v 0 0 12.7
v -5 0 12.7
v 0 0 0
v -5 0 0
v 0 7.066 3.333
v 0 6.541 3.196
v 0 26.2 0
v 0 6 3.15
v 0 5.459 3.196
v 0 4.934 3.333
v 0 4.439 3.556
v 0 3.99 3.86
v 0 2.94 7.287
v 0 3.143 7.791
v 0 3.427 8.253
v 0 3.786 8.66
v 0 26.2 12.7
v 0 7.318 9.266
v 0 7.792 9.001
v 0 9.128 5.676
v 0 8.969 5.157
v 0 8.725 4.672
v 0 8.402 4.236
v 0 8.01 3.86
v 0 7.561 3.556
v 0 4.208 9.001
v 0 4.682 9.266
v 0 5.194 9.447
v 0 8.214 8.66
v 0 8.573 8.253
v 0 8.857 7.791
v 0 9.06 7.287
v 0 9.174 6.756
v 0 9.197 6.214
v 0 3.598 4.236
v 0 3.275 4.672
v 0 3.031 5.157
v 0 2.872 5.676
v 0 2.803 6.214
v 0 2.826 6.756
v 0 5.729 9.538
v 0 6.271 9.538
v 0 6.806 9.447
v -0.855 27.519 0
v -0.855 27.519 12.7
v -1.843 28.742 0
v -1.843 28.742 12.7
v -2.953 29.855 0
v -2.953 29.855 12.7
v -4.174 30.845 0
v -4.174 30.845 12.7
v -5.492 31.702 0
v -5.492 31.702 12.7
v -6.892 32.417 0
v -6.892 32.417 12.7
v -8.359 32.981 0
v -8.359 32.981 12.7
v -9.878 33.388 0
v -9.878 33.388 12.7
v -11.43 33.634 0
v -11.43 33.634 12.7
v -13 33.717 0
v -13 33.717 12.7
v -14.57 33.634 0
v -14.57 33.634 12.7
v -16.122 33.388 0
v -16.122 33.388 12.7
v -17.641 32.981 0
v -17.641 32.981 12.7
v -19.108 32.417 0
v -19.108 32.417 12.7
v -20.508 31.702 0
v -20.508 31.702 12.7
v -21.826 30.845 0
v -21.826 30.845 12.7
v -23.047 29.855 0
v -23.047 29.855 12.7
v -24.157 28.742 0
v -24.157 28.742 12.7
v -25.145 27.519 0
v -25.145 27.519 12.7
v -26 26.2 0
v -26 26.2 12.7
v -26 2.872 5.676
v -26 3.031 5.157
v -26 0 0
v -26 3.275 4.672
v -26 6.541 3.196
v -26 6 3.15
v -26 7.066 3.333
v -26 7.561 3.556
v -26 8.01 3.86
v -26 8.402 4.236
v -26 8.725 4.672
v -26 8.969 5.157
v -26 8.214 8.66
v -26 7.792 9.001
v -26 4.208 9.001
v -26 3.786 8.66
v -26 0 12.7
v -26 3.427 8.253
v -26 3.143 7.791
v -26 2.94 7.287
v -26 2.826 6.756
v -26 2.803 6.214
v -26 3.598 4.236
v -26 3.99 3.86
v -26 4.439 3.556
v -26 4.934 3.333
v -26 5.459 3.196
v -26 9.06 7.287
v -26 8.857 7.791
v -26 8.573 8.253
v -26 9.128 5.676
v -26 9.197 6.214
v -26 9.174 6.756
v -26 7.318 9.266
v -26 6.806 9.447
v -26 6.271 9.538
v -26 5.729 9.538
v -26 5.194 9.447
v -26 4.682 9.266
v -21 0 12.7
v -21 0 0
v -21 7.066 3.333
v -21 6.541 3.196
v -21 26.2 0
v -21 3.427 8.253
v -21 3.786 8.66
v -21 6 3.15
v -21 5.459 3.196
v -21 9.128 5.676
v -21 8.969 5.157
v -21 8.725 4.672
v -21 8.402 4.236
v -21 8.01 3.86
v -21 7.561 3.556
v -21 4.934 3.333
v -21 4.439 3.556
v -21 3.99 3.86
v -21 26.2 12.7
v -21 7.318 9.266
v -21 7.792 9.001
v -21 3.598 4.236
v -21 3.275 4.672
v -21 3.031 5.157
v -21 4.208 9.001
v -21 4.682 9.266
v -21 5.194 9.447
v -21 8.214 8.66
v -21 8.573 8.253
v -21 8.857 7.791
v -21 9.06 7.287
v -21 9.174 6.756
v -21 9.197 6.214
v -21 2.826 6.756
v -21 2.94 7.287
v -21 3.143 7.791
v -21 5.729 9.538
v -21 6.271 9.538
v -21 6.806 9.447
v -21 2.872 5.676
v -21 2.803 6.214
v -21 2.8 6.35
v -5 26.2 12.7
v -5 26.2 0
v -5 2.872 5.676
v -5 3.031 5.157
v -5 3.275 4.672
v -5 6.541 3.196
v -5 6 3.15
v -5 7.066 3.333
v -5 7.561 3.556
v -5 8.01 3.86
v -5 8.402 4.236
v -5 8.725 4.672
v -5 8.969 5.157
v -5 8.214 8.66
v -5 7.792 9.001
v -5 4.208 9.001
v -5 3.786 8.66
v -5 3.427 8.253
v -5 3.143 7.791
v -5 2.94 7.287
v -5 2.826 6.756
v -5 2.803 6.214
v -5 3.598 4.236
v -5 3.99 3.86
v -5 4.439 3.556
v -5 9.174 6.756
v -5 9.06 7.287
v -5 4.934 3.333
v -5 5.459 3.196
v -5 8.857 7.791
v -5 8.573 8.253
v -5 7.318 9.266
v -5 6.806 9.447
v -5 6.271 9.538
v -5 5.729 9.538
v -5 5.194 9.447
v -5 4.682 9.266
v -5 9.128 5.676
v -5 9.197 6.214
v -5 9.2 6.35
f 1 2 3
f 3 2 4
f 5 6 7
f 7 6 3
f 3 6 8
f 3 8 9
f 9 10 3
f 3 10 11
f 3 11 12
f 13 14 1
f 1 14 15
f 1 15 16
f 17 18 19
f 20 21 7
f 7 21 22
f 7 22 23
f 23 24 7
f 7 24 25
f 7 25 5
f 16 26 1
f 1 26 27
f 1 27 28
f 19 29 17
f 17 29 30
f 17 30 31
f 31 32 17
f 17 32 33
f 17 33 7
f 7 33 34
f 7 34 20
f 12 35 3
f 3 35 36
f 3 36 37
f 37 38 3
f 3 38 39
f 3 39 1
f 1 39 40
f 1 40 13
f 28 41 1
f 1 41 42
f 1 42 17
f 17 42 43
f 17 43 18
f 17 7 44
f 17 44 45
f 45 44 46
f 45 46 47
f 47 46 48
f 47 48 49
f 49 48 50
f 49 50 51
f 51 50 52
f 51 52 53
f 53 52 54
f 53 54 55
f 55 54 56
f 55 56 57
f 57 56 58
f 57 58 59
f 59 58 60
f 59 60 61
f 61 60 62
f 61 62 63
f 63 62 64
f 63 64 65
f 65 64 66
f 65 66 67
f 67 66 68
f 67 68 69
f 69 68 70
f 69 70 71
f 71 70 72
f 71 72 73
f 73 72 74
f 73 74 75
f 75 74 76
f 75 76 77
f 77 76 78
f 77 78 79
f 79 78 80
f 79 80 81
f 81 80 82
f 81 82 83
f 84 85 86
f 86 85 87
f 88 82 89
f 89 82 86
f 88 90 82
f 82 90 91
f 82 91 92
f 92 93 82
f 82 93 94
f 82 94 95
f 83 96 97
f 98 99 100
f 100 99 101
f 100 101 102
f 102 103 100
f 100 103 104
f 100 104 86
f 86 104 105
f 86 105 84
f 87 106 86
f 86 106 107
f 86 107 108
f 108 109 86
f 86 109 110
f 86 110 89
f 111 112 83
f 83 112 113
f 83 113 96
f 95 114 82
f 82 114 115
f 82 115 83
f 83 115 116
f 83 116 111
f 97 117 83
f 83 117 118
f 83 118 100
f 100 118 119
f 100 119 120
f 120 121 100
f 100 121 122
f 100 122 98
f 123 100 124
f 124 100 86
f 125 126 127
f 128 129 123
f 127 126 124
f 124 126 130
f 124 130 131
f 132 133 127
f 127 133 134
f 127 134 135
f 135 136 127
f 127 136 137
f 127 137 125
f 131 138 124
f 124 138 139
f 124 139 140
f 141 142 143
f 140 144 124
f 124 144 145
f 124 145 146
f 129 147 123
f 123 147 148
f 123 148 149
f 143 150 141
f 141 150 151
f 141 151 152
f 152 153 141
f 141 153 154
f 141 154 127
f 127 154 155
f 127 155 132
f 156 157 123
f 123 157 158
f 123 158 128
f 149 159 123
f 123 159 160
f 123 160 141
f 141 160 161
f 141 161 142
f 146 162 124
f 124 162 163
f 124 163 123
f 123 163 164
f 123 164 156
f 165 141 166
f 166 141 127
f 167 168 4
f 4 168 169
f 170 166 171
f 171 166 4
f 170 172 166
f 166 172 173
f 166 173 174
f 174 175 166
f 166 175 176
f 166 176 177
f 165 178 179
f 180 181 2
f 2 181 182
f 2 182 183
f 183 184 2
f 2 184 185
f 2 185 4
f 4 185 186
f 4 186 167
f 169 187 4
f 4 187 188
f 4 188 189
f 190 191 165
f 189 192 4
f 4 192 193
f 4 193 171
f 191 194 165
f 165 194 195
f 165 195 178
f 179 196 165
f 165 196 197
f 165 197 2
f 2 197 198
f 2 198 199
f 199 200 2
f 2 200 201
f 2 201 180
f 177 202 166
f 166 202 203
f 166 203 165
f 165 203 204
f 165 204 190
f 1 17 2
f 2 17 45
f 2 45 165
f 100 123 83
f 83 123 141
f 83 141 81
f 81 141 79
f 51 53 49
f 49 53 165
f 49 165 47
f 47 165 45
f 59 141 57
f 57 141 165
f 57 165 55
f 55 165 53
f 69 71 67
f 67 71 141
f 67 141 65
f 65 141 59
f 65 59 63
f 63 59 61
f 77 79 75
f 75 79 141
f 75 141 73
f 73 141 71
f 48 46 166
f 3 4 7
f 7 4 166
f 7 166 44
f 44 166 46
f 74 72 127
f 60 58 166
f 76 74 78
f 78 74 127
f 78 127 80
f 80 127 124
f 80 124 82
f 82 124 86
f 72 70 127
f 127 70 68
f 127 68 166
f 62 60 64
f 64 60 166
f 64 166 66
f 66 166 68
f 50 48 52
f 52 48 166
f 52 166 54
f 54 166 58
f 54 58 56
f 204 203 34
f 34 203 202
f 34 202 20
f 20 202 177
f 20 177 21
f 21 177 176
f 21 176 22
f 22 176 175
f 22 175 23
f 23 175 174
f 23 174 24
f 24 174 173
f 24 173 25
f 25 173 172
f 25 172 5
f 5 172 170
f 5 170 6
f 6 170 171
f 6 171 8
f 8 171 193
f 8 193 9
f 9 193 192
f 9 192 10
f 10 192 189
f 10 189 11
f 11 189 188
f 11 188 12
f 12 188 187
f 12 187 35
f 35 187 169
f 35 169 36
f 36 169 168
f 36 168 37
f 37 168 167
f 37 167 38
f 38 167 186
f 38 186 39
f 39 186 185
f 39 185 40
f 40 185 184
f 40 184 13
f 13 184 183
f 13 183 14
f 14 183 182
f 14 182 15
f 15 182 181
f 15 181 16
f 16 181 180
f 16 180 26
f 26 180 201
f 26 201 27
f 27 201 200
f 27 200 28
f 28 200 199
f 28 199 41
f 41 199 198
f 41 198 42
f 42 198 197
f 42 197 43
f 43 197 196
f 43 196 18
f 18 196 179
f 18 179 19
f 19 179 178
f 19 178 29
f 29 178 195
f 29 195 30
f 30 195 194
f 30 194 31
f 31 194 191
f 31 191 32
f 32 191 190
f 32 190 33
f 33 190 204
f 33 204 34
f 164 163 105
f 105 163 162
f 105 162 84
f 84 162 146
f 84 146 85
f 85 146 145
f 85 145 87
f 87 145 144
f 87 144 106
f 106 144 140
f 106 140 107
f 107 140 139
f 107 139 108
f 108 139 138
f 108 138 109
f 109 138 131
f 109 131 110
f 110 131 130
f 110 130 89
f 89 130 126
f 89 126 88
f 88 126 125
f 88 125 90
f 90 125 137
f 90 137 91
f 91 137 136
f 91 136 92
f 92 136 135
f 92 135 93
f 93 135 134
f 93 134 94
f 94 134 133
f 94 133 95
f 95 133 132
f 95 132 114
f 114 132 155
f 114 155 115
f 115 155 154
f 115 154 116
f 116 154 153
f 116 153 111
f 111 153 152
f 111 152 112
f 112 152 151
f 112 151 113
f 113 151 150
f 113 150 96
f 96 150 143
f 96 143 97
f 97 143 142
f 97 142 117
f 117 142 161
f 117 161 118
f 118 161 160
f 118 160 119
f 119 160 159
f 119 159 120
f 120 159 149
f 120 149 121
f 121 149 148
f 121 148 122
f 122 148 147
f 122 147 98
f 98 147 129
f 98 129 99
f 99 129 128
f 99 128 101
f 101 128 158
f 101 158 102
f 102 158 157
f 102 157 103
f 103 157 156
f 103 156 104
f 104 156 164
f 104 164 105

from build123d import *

# Parameters (mm, degrees)
BOSS_EXTRUDE1_DEPTH = 12.7
SKETCH2_R           = 3.2
CUT_EXTRUDE1_DEPTH  = 27


with BuildPart() as part:
    # Sketch1 → Boss-Extrude1 (new body)
    with BuildSketch(Plane.XY):
        with BuildLine():
            Line((0, 0), (0, 26.2))
            ThreePointArc((0, 26.2), (-13, 33.716685226), (-26, 26.2))
            Line((-26, 26.2), (-26, 0))
            Line((-26, 0), (-21, 0))
            Line((-21, 0), (-21, 26.2))
            Line((-21, 26.2), (-5, 26.2))
            Line((-5, 26.2), (-5, 0))
            Line((-5, 0), (0, 0))
        make_face()
    extrude(amount=BOSS_EXTRUDE1_DEPTH)

    # Sketch2 → Cut-Extrude1 (cut, through all)
    with BuildSketch(Plane(origin=(0, 0, 0), x_dir=(0, 0, -1), z_dir=(1, 0, 0))):
        with Locations((-6.35, 6)):
            Circle(SKETCH2_R)
    extrude(amount=-CUT_EXTRUDE1_DEPTH, mode=Mode.SUBTRACT)


solid = part.part
